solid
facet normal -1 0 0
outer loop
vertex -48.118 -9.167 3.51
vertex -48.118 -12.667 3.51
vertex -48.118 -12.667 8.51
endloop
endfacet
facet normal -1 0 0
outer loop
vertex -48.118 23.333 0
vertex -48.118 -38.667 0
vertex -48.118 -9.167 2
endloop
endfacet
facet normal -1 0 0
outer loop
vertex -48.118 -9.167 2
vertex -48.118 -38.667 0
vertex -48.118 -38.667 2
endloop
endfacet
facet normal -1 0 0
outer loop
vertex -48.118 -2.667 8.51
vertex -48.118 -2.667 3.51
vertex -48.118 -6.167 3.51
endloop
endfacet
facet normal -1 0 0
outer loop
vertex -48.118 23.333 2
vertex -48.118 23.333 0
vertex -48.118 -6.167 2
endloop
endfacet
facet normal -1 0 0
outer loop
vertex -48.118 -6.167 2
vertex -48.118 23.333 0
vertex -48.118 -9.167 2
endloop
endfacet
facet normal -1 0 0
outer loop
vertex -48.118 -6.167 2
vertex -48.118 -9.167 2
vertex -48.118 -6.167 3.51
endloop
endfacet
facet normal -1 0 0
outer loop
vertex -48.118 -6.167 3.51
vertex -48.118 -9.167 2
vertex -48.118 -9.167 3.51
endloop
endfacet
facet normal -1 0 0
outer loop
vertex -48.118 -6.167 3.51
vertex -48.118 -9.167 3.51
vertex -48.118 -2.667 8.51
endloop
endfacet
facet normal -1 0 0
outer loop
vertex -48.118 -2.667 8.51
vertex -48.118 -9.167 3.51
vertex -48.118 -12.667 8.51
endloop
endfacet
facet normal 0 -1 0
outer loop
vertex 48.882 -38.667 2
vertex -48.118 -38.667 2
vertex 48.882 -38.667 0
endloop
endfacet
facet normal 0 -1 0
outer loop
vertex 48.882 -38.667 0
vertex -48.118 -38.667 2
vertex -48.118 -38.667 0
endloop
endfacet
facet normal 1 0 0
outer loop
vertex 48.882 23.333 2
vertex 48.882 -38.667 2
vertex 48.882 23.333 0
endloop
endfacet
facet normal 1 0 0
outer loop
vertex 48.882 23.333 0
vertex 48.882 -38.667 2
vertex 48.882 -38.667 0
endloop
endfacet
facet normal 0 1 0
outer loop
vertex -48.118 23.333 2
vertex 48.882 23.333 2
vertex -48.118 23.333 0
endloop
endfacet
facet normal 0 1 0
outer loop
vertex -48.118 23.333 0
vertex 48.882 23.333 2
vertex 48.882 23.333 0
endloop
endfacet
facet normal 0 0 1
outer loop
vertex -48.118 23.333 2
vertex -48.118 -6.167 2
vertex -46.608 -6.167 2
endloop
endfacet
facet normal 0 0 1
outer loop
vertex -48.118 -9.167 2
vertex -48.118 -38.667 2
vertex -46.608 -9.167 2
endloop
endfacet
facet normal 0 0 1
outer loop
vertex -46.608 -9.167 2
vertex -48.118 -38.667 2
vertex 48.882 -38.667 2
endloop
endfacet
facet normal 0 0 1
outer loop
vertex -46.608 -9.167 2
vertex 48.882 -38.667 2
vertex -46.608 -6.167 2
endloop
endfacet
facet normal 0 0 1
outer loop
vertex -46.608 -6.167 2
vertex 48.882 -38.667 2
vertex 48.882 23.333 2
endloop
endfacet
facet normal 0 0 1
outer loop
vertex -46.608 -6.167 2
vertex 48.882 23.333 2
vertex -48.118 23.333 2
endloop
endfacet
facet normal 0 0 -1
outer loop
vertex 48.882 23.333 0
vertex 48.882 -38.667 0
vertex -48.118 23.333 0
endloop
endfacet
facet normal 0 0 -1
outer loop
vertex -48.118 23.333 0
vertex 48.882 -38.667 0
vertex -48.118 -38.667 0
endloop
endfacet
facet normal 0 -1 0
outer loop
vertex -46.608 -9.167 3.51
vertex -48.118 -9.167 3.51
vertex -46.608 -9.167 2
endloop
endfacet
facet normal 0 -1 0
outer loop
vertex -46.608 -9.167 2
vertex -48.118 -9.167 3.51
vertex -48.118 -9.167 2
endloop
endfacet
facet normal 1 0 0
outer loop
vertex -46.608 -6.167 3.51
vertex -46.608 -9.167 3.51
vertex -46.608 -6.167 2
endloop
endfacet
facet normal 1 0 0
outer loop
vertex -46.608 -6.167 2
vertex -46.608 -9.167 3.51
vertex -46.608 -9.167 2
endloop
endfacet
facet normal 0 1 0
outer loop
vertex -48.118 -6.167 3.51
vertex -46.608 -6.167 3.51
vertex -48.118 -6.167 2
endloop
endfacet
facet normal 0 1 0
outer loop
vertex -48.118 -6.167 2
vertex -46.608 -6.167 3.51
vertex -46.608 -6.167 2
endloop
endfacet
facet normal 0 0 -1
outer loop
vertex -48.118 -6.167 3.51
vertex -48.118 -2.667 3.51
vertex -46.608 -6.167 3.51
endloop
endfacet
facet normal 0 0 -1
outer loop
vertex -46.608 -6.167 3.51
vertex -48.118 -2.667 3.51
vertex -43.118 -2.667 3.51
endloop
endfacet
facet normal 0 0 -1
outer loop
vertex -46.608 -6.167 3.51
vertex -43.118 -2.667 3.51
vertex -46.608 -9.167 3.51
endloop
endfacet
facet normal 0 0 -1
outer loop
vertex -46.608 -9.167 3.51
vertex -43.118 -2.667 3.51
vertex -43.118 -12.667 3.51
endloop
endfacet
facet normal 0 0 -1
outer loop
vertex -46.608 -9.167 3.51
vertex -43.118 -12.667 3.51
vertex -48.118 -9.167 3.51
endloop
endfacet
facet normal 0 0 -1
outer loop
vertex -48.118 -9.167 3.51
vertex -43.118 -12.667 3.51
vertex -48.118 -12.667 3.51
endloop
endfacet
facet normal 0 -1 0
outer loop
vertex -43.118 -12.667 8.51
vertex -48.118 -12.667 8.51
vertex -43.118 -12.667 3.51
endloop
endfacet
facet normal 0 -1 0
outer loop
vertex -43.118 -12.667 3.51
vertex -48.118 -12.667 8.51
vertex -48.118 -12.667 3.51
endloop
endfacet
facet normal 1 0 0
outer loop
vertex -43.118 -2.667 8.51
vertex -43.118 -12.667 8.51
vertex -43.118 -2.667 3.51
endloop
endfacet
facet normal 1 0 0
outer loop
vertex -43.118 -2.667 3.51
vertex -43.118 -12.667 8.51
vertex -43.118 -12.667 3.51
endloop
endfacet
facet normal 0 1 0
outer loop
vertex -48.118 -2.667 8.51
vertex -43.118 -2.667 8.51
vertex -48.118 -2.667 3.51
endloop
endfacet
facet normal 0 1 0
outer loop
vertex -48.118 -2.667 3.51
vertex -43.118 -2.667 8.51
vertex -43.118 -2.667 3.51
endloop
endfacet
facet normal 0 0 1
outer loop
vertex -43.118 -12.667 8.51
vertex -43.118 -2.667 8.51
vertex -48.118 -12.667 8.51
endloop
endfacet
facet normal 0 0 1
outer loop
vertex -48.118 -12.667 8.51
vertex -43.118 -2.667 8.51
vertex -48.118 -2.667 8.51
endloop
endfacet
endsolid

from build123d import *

# Parameters (mm, degrees)
ESQUISSE1_W        = 97
ESQUISSE1_H        = 62
BOSS_EXTRU_1_DEPTH = 2
ESQUISSE3_W        = 1.51
ESQUISSE3_H        = 3
BOSS_EXTRU_3_DEPTH = 1.51
ESQUISSE4_W        = 5
ESQUISSE4_H        = 10
BOSS_EXTRU_4_DEPTH = 5


with BuildPart() as part:
    # Esquisse1 → Boss.-Extru.1 (new body)
    with BuildSketch(Plane.XY):
        with Locations((0.382294712, -7.666666667)):
            Rectangle(ESQUISSE1_W, ESQUISSE1_H)
    extrude(amount=BOSS_EXTRU_1_DEPTH)

    # Esquisse3 → Boss.-Extru.3 (add)
    with BuildSketch(Plane.XY.offset(2)):
        with Locations((-47.362705288, -7.666666667)):
            Rectangle(ESQUISSE3_W, ESQUISSE3_H)
    extrude(amount=BOSS_EXTRU_3_DEPTH)

    # Esquisse4 → Boss.-Extru.4 (add)
    with BuildSketch(Plane.XY.offset(3.51)):
        with Locations((-45.617705288, -7.666666667)):
            Rectangle(ESQUISSE4_W, ESQUISSE4_H)
    extrude(amount=BOSS_EXTRU_4_DEPTH)


solid = part.part
